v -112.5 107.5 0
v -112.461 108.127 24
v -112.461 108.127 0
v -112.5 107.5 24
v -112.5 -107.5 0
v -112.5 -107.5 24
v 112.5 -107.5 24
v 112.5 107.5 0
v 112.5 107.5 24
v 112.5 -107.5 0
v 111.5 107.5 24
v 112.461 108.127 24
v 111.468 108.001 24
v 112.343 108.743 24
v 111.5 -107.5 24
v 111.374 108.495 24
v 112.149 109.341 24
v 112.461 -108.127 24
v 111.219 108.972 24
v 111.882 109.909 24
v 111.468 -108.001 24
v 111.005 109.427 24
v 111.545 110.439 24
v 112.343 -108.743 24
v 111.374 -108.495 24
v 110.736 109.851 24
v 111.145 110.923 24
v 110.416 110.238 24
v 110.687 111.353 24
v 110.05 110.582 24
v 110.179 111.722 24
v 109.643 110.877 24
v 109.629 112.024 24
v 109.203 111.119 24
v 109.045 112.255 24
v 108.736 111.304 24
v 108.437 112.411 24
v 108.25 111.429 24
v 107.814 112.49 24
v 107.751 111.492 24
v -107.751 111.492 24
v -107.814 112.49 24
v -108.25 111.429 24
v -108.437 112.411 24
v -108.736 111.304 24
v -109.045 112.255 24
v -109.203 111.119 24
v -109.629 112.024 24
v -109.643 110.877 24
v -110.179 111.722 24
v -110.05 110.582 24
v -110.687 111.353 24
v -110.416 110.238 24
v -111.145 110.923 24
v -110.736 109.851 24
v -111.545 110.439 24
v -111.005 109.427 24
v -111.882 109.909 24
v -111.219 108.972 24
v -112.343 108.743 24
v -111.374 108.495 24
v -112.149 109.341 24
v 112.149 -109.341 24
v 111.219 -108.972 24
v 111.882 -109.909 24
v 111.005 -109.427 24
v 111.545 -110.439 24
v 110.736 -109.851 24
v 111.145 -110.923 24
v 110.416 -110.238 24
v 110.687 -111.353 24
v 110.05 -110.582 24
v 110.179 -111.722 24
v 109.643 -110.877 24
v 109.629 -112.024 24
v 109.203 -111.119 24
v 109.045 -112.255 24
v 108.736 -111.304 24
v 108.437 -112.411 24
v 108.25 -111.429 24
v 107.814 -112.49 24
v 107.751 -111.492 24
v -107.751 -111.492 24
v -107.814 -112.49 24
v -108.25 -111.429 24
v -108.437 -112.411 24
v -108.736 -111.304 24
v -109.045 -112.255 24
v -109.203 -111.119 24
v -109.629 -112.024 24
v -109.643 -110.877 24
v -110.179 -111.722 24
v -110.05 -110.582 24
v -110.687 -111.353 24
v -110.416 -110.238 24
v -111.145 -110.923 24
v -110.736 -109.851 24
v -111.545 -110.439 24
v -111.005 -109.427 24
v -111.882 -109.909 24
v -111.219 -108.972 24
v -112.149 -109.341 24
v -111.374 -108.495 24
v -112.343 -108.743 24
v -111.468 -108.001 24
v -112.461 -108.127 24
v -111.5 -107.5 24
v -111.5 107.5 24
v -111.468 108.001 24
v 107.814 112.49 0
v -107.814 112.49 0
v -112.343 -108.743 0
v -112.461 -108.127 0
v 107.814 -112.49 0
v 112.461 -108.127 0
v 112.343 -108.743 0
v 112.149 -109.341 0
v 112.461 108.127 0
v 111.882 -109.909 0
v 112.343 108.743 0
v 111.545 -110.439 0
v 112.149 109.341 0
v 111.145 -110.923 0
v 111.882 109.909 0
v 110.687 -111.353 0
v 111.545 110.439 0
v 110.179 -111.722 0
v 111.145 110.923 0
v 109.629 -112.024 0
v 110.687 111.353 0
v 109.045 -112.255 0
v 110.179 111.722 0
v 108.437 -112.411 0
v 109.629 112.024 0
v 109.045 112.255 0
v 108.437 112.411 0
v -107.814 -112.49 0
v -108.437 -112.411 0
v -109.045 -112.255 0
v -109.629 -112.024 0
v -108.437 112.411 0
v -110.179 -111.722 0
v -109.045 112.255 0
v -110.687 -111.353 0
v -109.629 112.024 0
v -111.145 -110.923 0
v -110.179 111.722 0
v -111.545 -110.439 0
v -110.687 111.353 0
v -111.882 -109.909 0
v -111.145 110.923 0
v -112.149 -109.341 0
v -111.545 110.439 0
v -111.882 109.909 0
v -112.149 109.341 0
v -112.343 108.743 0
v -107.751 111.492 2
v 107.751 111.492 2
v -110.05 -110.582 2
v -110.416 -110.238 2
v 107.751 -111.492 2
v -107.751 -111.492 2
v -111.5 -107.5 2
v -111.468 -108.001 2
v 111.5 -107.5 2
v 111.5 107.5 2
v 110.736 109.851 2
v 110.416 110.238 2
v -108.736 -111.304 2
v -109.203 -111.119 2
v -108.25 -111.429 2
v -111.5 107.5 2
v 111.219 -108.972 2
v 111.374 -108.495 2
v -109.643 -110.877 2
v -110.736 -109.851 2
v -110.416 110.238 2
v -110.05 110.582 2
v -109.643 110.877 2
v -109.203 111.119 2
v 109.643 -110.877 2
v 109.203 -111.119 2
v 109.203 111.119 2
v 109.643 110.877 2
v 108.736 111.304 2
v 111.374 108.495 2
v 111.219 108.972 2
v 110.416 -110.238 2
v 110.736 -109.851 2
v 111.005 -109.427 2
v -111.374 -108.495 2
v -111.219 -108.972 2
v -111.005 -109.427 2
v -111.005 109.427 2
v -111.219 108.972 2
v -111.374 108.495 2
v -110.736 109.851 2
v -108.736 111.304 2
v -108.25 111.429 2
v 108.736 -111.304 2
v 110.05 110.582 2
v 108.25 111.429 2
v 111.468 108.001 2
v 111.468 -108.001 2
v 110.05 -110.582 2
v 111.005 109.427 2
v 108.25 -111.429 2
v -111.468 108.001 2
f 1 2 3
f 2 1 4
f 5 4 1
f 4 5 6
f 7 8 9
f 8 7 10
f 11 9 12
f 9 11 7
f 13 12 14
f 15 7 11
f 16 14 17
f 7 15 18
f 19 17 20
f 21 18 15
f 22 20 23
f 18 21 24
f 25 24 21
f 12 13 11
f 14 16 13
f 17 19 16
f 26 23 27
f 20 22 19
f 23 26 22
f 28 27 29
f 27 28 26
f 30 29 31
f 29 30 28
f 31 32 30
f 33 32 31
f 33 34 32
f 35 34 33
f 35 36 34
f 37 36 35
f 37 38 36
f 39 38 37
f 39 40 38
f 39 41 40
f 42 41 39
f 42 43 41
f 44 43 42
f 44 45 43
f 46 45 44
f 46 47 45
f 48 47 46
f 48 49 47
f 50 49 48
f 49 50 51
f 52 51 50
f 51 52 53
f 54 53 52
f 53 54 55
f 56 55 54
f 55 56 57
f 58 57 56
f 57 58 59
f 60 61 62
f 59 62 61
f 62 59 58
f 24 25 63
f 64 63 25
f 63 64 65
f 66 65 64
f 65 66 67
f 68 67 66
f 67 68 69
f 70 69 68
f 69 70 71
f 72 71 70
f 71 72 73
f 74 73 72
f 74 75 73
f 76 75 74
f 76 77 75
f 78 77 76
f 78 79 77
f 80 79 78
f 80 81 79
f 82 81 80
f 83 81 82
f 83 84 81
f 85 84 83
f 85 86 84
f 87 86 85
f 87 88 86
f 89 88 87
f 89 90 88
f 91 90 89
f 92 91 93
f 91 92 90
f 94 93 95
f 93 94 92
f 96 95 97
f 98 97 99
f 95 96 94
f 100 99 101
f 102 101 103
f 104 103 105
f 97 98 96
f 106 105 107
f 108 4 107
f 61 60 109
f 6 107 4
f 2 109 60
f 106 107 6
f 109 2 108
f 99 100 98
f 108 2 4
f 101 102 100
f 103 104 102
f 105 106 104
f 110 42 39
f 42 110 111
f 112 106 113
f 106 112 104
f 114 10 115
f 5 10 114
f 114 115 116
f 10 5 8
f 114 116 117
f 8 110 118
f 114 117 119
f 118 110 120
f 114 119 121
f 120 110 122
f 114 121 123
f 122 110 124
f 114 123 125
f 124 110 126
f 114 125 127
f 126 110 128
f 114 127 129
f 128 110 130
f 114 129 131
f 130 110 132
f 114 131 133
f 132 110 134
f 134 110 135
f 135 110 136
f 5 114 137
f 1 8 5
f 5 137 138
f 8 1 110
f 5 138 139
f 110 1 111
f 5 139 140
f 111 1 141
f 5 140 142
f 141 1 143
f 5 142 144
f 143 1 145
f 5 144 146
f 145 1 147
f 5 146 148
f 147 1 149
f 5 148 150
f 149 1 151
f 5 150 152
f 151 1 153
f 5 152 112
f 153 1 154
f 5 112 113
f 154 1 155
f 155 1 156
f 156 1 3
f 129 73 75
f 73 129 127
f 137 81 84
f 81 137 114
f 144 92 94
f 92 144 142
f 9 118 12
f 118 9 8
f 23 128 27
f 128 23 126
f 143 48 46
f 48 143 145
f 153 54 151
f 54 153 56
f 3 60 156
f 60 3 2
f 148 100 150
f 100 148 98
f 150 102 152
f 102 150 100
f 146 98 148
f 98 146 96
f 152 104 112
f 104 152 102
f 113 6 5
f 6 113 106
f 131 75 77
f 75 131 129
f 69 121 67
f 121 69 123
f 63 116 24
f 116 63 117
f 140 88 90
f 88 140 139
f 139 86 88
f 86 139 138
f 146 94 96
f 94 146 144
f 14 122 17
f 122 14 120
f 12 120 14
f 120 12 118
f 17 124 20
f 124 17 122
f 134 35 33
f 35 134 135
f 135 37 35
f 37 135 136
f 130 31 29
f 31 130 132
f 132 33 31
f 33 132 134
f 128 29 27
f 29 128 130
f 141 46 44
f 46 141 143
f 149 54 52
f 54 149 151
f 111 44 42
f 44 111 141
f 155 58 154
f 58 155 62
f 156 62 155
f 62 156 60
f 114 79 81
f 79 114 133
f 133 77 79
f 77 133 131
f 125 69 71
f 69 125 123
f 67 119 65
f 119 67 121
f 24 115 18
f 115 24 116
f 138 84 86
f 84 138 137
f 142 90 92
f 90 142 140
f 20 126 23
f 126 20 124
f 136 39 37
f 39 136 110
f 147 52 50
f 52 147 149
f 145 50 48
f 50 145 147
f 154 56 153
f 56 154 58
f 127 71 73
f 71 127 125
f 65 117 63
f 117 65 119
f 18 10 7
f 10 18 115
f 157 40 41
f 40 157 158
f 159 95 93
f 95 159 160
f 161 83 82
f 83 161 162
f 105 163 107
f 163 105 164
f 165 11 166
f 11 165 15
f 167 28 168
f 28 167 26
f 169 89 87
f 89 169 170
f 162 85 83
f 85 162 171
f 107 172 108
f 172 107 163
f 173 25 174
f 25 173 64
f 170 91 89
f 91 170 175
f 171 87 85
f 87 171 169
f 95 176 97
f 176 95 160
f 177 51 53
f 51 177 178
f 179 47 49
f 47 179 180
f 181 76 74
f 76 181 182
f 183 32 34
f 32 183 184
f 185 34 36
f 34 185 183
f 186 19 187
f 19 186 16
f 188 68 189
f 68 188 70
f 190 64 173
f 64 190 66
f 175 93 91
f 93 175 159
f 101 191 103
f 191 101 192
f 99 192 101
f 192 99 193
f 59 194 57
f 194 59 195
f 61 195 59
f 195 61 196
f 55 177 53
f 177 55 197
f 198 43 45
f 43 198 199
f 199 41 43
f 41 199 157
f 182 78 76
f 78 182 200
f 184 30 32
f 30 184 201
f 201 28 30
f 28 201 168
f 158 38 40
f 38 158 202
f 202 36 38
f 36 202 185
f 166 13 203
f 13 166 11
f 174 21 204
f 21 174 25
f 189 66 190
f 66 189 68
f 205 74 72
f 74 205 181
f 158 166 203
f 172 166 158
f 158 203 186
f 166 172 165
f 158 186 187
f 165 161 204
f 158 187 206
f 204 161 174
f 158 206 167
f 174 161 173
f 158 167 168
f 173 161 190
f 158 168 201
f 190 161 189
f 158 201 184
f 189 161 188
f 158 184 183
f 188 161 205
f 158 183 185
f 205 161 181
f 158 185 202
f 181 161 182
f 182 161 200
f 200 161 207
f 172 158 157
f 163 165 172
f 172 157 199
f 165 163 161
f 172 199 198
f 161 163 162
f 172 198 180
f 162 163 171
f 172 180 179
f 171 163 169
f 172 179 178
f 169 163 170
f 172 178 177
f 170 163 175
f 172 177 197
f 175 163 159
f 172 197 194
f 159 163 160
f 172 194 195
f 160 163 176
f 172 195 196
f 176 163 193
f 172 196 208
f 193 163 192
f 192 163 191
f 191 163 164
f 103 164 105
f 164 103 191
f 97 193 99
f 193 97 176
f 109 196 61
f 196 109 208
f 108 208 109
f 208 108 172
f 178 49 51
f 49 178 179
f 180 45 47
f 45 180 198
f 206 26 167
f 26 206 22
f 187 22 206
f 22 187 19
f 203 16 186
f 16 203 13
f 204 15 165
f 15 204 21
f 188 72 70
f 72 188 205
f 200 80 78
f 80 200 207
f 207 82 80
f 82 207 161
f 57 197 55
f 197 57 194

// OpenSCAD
$fn = 50;


difference() {
	union() {
		hull() {
			translate(v = [-107.5000000000, 107.5000000000, 0]) {
				cylinder(h = 24, r = 5);
			}
			translate(v = [107.5000000000, 107.5000000000, 0]) {
				cylinder(h = 24, r = 5);
			}
			translate(v = [-107.5000000000, -107.5000000000, 0]) {
				cylinder(h = 24, r = 5);
			}
			translate(v = [107.5000000000, -107.5000000000, 0]) {
				cylinder(h = 24, r = 5);
			}
		}
	}
	union() {
		translate(v = [0, 0, 2]) {
			hull() {
				translate(v = [-107.5000000000, 107.5000000000, 0]) {
					cylinder(h = 22, r = 4);
				}
				translate(v = [107.5000000000, 107.5000000000, 0]) {
					cylinder(h = 22, r = 4);
				}
				translate(v = [-107.5000000000, -107.5000000000, 0]) {
					cylinder(h = 22, r = 4);
				}
				translate(v = [107.5000000000, -107.5000000000, 0]) {
					cylinder(h = 22, r = 4);
				}
			}
		}
	}
}
